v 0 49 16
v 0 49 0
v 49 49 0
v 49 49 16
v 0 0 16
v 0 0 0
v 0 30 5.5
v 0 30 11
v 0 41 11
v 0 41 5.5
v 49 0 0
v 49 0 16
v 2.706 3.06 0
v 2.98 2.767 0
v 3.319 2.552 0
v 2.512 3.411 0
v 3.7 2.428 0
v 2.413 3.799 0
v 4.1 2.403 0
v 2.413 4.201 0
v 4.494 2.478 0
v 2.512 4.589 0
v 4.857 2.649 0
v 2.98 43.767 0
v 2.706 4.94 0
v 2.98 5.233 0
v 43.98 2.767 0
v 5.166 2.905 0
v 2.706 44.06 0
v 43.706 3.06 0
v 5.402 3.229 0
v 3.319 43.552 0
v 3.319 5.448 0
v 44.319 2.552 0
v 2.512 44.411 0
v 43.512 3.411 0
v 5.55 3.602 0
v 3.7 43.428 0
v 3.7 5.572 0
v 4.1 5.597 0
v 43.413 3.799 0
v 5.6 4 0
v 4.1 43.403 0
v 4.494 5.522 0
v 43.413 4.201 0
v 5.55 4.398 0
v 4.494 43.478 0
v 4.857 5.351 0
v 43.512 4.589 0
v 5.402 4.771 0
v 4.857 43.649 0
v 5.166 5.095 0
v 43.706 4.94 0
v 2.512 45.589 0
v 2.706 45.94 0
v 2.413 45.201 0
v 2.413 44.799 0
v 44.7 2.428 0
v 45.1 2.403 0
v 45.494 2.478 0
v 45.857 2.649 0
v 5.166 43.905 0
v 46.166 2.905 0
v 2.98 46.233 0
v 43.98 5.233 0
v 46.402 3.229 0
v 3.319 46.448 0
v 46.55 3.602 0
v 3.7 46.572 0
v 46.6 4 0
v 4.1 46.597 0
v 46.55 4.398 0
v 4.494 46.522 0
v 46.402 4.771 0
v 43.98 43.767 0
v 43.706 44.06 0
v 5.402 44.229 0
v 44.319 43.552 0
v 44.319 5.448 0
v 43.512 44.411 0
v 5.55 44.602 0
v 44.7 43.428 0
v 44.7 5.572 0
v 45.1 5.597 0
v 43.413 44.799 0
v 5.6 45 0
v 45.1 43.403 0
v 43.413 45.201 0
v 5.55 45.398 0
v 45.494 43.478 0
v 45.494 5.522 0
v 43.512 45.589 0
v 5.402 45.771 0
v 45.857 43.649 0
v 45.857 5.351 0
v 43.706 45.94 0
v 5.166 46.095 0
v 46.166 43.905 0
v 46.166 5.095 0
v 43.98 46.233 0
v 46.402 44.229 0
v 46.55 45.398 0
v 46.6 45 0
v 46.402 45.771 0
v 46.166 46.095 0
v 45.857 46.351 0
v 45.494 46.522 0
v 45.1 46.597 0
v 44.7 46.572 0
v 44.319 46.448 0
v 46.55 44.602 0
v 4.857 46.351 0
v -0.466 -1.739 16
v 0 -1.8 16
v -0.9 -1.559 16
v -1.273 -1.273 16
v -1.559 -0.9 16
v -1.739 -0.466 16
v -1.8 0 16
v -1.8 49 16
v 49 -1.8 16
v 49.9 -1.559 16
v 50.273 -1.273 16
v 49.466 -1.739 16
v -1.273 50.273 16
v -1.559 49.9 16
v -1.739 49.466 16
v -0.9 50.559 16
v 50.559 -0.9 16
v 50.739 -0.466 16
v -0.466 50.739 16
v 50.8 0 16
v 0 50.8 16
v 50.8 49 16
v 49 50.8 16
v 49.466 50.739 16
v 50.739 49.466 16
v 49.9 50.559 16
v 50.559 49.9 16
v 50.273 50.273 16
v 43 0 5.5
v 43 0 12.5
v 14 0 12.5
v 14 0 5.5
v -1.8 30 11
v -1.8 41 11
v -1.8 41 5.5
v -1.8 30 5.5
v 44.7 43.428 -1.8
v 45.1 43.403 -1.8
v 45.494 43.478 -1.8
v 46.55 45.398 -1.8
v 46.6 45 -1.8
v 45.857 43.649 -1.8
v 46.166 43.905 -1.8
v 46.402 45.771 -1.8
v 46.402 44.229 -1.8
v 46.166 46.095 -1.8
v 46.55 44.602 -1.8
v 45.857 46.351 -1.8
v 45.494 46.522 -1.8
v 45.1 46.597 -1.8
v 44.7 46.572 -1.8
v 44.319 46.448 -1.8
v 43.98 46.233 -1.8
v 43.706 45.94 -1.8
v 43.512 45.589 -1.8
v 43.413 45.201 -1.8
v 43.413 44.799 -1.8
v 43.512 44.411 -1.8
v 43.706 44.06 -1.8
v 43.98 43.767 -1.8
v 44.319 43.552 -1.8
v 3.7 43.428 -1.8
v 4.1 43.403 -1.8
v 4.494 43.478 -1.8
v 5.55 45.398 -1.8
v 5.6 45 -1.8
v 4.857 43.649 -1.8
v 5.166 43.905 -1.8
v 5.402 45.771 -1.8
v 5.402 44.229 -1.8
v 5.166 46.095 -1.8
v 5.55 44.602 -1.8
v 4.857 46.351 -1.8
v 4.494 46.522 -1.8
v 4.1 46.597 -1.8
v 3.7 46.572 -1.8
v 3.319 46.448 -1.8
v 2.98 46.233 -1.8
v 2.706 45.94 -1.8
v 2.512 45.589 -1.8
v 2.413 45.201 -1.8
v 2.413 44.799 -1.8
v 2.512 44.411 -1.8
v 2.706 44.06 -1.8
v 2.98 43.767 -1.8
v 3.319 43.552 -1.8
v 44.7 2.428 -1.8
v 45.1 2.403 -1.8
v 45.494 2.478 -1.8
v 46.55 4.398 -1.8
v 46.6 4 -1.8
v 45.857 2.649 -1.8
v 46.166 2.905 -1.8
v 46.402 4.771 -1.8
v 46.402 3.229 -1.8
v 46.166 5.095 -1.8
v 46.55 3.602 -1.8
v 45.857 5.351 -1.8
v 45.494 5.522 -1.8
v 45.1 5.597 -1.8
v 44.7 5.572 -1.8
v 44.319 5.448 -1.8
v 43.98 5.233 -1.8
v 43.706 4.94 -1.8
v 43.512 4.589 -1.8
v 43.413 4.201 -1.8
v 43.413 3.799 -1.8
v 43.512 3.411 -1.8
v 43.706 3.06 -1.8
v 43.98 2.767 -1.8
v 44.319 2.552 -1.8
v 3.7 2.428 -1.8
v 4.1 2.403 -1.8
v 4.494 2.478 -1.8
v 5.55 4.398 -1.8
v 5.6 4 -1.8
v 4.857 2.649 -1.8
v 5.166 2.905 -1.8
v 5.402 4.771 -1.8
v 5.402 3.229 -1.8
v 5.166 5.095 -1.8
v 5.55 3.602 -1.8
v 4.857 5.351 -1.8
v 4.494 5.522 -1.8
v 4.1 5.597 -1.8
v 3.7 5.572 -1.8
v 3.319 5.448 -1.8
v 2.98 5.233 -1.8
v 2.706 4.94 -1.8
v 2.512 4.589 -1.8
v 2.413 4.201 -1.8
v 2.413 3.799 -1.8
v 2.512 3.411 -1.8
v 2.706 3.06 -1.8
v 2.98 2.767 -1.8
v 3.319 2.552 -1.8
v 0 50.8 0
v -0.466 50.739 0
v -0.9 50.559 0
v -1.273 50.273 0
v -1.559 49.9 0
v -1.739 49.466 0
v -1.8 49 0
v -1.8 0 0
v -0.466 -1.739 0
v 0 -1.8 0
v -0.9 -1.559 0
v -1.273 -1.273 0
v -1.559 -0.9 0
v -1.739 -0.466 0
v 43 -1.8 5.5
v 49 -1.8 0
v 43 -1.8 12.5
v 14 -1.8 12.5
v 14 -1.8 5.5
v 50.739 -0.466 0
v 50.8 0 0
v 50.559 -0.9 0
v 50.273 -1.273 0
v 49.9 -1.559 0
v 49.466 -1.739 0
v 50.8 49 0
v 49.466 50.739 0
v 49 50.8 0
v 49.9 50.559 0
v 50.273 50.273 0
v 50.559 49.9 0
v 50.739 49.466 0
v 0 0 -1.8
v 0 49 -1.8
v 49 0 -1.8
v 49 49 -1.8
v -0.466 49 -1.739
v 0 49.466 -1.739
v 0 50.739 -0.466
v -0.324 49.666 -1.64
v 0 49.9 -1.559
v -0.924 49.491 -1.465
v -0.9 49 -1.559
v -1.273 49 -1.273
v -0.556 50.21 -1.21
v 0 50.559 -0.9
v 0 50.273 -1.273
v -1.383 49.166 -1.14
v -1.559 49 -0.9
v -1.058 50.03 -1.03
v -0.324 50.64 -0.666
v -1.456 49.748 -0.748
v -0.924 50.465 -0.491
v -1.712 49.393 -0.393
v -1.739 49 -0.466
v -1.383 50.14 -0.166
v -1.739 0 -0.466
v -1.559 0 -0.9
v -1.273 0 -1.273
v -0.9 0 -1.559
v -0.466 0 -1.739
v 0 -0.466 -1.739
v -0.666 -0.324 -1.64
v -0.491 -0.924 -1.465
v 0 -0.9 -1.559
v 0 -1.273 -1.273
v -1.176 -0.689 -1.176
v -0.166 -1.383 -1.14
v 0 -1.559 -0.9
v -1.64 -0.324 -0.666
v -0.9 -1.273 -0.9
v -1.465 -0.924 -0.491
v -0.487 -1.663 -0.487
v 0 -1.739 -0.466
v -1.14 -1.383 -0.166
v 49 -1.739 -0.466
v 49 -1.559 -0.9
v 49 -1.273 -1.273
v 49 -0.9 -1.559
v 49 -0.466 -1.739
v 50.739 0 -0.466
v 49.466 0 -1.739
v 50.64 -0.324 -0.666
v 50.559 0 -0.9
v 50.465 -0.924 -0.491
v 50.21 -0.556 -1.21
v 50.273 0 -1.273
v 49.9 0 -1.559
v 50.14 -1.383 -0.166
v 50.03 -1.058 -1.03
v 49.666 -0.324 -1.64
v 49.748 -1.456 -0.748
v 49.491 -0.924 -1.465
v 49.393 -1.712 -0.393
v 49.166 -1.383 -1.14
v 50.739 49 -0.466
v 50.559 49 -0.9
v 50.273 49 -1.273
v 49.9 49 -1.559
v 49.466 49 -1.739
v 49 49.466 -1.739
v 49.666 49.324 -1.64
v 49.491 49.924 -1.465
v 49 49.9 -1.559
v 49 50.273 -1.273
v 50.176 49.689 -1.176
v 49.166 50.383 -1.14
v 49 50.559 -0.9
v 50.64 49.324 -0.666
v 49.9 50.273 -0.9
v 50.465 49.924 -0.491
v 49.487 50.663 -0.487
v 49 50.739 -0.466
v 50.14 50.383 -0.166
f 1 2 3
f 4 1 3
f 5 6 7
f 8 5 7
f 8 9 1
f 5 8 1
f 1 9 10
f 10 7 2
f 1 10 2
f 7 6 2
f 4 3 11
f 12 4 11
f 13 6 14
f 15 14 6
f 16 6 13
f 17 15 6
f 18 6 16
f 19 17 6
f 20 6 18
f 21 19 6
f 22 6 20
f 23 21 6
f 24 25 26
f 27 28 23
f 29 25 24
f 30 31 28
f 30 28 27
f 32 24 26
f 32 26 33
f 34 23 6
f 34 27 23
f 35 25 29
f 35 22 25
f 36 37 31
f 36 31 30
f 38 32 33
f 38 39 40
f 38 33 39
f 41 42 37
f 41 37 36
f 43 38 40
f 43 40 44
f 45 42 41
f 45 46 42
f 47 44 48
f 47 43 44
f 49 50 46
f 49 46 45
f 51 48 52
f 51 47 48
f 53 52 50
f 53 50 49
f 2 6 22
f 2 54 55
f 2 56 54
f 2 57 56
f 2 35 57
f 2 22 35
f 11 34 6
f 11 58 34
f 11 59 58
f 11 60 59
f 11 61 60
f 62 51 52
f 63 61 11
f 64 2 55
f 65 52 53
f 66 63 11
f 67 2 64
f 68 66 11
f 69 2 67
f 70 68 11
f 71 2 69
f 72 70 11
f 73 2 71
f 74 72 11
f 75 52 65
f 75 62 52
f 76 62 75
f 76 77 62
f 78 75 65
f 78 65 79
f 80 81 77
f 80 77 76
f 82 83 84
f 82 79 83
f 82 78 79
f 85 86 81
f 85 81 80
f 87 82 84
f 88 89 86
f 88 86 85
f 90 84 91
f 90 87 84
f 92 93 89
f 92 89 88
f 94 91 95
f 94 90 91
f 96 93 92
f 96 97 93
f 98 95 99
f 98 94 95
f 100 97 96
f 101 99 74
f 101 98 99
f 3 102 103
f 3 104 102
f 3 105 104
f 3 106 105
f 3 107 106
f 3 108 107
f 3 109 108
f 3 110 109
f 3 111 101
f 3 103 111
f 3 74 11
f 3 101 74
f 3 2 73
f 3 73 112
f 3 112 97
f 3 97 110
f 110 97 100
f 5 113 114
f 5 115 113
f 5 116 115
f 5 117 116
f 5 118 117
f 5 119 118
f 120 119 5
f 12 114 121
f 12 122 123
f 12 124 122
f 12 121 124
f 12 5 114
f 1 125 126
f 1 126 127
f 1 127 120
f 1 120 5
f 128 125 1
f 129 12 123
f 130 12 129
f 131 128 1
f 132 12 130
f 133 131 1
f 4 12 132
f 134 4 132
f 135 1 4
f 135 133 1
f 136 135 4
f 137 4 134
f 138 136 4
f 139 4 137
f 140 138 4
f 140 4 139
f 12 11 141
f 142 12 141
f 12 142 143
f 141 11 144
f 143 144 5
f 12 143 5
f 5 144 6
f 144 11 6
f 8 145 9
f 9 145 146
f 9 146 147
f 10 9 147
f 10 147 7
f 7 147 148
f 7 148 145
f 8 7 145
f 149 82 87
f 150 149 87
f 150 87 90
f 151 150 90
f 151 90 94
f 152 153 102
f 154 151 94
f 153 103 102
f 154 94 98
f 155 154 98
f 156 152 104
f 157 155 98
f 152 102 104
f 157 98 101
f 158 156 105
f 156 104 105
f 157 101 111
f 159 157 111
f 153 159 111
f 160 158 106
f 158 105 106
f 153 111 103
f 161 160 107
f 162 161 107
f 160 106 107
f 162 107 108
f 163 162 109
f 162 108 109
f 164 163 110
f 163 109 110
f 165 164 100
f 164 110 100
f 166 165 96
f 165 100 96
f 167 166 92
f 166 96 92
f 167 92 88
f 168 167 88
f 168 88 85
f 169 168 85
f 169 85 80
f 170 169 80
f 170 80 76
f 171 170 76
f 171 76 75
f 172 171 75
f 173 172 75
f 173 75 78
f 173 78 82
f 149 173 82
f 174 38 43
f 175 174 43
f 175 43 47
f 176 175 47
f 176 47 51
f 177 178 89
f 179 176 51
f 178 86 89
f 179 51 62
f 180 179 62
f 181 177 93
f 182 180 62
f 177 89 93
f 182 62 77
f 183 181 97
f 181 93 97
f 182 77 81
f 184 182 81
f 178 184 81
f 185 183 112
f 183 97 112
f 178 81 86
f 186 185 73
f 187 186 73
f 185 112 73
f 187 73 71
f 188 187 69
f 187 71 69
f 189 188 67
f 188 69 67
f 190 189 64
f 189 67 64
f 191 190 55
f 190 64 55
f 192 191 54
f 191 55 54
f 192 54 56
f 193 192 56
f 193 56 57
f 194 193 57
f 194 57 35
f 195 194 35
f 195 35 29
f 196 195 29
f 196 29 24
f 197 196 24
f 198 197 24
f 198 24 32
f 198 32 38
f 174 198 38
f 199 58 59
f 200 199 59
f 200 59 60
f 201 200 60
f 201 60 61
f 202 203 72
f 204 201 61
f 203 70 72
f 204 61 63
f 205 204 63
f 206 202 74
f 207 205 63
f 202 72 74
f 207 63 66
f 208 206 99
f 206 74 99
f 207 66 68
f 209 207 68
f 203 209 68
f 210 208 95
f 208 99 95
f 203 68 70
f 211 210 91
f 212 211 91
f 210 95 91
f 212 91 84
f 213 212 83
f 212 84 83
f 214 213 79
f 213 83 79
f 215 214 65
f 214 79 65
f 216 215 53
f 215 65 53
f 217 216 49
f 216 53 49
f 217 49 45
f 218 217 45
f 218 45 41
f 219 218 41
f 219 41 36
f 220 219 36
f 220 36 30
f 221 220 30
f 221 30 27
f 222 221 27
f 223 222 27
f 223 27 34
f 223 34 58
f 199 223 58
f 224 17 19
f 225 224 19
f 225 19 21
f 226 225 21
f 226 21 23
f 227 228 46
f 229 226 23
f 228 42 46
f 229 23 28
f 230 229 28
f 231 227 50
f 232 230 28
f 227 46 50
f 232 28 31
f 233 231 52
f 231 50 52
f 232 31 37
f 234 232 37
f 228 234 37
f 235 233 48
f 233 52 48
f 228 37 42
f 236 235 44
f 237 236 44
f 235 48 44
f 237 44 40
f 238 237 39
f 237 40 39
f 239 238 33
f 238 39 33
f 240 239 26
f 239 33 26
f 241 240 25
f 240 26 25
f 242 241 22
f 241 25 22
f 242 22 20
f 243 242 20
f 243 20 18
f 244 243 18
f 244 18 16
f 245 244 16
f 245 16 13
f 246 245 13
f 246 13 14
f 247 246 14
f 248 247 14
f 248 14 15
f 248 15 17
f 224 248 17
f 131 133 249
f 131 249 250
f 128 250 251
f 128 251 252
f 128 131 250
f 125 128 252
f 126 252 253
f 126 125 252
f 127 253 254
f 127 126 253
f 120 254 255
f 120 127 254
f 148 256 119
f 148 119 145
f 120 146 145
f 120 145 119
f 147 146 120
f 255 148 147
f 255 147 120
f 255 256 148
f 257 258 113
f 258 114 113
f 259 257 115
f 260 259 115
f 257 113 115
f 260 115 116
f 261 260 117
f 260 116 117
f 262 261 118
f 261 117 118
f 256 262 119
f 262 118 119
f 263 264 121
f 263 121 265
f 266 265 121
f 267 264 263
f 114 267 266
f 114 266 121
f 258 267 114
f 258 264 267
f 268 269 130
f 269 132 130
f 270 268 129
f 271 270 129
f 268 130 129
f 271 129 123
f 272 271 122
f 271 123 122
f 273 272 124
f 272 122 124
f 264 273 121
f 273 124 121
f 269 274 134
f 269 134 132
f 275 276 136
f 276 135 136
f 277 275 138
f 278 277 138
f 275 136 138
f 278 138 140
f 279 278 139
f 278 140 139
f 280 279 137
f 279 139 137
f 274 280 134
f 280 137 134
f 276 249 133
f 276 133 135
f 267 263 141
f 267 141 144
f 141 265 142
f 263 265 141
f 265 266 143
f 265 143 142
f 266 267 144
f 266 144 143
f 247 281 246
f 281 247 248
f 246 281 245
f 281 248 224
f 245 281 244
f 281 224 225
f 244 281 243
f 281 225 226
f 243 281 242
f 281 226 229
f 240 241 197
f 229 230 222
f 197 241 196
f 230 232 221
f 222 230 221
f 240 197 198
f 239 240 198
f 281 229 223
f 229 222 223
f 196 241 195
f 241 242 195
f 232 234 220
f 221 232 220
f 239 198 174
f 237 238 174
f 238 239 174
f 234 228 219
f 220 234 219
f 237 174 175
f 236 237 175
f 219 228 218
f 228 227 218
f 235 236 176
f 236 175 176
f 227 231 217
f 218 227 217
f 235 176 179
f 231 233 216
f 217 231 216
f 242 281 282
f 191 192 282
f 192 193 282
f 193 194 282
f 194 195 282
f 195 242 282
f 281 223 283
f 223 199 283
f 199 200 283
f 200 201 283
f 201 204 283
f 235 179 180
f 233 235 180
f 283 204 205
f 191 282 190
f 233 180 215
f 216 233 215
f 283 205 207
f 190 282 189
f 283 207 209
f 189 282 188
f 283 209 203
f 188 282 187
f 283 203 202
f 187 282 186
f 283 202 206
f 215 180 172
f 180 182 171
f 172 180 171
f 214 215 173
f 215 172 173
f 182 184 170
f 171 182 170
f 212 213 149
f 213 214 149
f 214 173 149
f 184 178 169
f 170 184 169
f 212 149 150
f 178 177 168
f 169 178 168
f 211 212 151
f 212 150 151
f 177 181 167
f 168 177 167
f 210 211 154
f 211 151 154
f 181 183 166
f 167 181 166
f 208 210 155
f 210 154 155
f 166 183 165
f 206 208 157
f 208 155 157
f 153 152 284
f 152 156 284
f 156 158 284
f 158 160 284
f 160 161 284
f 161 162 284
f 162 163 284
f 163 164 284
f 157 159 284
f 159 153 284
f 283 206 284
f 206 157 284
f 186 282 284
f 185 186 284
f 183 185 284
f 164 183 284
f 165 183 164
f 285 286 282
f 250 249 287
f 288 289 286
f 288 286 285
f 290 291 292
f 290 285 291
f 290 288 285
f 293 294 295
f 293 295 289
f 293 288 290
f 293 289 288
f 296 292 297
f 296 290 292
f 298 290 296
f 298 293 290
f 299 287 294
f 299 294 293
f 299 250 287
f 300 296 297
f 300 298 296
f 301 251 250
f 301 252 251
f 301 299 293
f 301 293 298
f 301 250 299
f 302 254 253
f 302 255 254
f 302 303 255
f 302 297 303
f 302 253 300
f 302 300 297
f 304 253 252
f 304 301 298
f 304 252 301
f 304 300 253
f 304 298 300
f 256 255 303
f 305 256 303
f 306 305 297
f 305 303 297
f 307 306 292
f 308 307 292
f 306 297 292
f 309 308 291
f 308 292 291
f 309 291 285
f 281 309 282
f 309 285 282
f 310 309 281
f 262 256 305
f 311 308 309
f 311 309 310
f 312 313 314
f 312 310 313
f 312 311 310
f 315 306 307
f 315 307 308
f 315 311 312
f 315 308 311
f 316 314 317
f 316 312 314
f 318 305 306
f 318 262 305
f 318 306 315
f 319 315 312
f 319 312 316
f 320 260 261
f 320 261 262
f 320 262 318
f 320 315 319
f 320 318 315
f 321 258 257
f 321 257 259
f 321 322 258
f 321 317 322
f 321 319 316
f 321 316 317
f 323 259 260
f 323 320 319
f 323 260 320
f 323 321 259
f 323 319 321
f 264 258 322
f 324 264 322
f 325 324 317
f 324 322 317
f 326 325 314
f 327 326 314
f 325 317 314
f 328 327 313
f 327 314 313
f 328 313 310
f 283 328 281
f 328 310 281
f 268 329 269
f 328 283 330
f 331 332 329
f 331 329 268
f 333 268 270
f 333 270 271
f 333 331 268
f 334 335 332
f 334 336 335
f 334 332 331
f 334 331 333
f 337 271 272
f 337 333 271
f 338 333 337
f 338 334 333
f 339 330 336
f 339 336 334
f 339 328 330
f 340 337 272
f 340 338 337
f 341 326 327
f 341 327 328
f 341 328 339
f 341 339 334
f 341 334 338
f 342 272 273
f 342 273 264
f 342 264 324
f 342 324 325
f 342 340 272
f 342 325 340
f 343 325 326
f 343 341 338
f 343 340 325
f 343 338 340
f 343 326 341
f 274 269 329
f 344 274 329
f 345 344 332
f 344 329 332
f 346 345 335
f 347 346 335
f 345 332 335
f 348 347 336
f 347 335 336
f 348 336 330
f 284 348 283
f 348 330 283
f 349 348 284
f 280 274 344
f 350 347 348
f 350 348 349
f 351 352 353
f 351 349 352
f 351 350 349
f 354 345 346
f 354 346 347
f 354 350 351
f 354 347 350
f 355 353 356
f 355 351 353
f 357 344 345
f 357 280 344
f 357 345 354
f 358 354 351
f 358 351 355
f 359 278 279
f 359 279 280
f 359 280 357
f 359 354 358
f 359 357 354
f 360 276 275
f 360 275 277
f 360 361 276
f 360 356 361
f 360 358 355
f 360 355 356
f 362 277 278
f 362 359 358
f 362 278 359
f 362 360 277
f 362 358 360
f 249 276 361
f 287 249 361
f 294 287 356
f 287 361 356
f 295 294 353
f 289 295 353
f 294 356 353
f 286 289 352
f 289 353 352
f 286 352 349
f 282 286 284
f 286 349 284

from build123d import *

# Parameters (mm, degrees)
SKETCH_W        = 49
SKETCH_H        = 49
PAD_DEPTH       = 16
THICKNESS_T     = 1.8
SKETCH001_R     = 1.6
POCKET_DEPTH    = 1.801
SKETCH002_W     = 29
SKETCH002_H     = 7
POCKET001_DEPTH = 1.8
SKETCH003_W     = 11
SKETCH003_H     = 5.5
POCKET002_DEPTH = 1.8


with BuildPart() as part:
    # Sketch → Pad (new body)
    with BuildSketch(Plane.XY):
        with Locations((24.5, 24.5)):
            Rectangle(SKETCH_W, SKETCH_H)
    extrude(amount=PAD_DEPTH)

    # Thickness
    thickness_openings = [part.faces().sort_by_distance(p)[0] for p in [
        (24.5, 24.5, 16),
    ]]
    offset(amount=THICKNESS_T, openings=thickness_openings)

    # Sketch001 → Pocket (cut, through all)
    with BuildSketch(Plane.XY):
        with Locations((4, 45)):
            Circle(SKETCH001_R)
        with Locations((4, 4)):
            Circle(SKETCH001_R)
        with Locations((45, 45)):
            Circle(SKETCH001_R)
        with Locations((45, 4)):
            Circle(SKETCH001_R)
    extrude(amount=-POCKET_DEPTH, mode=Mode.SUBTRACT)

    # Sketch002 → Pocket001 (cut)
    with BuildSketch(Plane.XZ.offset(1.8)):
        with Locations((28.5, 9)):
            Rectangle(SKETCH002_W, SKETCH002_H)
    extrude(amount=-POCKET001_DEPTH, mode=Mode.SUBTRACT)

    # Sketch003 → Pocket002 (cut)
    with BuildSketch(Plane(origin=(-1.8, 0, 0), x_dir=(0, -1, 0), z_dir=(-1, 0, 0))):
        with Locations((-35.5, 8.25)):
            Rectangle(SKETCH003_W, SKETCH003_H)
    extrude(amount=-POCKET002_DEPTH, mode=Mode.SUBTRACT)


solid = part.part
